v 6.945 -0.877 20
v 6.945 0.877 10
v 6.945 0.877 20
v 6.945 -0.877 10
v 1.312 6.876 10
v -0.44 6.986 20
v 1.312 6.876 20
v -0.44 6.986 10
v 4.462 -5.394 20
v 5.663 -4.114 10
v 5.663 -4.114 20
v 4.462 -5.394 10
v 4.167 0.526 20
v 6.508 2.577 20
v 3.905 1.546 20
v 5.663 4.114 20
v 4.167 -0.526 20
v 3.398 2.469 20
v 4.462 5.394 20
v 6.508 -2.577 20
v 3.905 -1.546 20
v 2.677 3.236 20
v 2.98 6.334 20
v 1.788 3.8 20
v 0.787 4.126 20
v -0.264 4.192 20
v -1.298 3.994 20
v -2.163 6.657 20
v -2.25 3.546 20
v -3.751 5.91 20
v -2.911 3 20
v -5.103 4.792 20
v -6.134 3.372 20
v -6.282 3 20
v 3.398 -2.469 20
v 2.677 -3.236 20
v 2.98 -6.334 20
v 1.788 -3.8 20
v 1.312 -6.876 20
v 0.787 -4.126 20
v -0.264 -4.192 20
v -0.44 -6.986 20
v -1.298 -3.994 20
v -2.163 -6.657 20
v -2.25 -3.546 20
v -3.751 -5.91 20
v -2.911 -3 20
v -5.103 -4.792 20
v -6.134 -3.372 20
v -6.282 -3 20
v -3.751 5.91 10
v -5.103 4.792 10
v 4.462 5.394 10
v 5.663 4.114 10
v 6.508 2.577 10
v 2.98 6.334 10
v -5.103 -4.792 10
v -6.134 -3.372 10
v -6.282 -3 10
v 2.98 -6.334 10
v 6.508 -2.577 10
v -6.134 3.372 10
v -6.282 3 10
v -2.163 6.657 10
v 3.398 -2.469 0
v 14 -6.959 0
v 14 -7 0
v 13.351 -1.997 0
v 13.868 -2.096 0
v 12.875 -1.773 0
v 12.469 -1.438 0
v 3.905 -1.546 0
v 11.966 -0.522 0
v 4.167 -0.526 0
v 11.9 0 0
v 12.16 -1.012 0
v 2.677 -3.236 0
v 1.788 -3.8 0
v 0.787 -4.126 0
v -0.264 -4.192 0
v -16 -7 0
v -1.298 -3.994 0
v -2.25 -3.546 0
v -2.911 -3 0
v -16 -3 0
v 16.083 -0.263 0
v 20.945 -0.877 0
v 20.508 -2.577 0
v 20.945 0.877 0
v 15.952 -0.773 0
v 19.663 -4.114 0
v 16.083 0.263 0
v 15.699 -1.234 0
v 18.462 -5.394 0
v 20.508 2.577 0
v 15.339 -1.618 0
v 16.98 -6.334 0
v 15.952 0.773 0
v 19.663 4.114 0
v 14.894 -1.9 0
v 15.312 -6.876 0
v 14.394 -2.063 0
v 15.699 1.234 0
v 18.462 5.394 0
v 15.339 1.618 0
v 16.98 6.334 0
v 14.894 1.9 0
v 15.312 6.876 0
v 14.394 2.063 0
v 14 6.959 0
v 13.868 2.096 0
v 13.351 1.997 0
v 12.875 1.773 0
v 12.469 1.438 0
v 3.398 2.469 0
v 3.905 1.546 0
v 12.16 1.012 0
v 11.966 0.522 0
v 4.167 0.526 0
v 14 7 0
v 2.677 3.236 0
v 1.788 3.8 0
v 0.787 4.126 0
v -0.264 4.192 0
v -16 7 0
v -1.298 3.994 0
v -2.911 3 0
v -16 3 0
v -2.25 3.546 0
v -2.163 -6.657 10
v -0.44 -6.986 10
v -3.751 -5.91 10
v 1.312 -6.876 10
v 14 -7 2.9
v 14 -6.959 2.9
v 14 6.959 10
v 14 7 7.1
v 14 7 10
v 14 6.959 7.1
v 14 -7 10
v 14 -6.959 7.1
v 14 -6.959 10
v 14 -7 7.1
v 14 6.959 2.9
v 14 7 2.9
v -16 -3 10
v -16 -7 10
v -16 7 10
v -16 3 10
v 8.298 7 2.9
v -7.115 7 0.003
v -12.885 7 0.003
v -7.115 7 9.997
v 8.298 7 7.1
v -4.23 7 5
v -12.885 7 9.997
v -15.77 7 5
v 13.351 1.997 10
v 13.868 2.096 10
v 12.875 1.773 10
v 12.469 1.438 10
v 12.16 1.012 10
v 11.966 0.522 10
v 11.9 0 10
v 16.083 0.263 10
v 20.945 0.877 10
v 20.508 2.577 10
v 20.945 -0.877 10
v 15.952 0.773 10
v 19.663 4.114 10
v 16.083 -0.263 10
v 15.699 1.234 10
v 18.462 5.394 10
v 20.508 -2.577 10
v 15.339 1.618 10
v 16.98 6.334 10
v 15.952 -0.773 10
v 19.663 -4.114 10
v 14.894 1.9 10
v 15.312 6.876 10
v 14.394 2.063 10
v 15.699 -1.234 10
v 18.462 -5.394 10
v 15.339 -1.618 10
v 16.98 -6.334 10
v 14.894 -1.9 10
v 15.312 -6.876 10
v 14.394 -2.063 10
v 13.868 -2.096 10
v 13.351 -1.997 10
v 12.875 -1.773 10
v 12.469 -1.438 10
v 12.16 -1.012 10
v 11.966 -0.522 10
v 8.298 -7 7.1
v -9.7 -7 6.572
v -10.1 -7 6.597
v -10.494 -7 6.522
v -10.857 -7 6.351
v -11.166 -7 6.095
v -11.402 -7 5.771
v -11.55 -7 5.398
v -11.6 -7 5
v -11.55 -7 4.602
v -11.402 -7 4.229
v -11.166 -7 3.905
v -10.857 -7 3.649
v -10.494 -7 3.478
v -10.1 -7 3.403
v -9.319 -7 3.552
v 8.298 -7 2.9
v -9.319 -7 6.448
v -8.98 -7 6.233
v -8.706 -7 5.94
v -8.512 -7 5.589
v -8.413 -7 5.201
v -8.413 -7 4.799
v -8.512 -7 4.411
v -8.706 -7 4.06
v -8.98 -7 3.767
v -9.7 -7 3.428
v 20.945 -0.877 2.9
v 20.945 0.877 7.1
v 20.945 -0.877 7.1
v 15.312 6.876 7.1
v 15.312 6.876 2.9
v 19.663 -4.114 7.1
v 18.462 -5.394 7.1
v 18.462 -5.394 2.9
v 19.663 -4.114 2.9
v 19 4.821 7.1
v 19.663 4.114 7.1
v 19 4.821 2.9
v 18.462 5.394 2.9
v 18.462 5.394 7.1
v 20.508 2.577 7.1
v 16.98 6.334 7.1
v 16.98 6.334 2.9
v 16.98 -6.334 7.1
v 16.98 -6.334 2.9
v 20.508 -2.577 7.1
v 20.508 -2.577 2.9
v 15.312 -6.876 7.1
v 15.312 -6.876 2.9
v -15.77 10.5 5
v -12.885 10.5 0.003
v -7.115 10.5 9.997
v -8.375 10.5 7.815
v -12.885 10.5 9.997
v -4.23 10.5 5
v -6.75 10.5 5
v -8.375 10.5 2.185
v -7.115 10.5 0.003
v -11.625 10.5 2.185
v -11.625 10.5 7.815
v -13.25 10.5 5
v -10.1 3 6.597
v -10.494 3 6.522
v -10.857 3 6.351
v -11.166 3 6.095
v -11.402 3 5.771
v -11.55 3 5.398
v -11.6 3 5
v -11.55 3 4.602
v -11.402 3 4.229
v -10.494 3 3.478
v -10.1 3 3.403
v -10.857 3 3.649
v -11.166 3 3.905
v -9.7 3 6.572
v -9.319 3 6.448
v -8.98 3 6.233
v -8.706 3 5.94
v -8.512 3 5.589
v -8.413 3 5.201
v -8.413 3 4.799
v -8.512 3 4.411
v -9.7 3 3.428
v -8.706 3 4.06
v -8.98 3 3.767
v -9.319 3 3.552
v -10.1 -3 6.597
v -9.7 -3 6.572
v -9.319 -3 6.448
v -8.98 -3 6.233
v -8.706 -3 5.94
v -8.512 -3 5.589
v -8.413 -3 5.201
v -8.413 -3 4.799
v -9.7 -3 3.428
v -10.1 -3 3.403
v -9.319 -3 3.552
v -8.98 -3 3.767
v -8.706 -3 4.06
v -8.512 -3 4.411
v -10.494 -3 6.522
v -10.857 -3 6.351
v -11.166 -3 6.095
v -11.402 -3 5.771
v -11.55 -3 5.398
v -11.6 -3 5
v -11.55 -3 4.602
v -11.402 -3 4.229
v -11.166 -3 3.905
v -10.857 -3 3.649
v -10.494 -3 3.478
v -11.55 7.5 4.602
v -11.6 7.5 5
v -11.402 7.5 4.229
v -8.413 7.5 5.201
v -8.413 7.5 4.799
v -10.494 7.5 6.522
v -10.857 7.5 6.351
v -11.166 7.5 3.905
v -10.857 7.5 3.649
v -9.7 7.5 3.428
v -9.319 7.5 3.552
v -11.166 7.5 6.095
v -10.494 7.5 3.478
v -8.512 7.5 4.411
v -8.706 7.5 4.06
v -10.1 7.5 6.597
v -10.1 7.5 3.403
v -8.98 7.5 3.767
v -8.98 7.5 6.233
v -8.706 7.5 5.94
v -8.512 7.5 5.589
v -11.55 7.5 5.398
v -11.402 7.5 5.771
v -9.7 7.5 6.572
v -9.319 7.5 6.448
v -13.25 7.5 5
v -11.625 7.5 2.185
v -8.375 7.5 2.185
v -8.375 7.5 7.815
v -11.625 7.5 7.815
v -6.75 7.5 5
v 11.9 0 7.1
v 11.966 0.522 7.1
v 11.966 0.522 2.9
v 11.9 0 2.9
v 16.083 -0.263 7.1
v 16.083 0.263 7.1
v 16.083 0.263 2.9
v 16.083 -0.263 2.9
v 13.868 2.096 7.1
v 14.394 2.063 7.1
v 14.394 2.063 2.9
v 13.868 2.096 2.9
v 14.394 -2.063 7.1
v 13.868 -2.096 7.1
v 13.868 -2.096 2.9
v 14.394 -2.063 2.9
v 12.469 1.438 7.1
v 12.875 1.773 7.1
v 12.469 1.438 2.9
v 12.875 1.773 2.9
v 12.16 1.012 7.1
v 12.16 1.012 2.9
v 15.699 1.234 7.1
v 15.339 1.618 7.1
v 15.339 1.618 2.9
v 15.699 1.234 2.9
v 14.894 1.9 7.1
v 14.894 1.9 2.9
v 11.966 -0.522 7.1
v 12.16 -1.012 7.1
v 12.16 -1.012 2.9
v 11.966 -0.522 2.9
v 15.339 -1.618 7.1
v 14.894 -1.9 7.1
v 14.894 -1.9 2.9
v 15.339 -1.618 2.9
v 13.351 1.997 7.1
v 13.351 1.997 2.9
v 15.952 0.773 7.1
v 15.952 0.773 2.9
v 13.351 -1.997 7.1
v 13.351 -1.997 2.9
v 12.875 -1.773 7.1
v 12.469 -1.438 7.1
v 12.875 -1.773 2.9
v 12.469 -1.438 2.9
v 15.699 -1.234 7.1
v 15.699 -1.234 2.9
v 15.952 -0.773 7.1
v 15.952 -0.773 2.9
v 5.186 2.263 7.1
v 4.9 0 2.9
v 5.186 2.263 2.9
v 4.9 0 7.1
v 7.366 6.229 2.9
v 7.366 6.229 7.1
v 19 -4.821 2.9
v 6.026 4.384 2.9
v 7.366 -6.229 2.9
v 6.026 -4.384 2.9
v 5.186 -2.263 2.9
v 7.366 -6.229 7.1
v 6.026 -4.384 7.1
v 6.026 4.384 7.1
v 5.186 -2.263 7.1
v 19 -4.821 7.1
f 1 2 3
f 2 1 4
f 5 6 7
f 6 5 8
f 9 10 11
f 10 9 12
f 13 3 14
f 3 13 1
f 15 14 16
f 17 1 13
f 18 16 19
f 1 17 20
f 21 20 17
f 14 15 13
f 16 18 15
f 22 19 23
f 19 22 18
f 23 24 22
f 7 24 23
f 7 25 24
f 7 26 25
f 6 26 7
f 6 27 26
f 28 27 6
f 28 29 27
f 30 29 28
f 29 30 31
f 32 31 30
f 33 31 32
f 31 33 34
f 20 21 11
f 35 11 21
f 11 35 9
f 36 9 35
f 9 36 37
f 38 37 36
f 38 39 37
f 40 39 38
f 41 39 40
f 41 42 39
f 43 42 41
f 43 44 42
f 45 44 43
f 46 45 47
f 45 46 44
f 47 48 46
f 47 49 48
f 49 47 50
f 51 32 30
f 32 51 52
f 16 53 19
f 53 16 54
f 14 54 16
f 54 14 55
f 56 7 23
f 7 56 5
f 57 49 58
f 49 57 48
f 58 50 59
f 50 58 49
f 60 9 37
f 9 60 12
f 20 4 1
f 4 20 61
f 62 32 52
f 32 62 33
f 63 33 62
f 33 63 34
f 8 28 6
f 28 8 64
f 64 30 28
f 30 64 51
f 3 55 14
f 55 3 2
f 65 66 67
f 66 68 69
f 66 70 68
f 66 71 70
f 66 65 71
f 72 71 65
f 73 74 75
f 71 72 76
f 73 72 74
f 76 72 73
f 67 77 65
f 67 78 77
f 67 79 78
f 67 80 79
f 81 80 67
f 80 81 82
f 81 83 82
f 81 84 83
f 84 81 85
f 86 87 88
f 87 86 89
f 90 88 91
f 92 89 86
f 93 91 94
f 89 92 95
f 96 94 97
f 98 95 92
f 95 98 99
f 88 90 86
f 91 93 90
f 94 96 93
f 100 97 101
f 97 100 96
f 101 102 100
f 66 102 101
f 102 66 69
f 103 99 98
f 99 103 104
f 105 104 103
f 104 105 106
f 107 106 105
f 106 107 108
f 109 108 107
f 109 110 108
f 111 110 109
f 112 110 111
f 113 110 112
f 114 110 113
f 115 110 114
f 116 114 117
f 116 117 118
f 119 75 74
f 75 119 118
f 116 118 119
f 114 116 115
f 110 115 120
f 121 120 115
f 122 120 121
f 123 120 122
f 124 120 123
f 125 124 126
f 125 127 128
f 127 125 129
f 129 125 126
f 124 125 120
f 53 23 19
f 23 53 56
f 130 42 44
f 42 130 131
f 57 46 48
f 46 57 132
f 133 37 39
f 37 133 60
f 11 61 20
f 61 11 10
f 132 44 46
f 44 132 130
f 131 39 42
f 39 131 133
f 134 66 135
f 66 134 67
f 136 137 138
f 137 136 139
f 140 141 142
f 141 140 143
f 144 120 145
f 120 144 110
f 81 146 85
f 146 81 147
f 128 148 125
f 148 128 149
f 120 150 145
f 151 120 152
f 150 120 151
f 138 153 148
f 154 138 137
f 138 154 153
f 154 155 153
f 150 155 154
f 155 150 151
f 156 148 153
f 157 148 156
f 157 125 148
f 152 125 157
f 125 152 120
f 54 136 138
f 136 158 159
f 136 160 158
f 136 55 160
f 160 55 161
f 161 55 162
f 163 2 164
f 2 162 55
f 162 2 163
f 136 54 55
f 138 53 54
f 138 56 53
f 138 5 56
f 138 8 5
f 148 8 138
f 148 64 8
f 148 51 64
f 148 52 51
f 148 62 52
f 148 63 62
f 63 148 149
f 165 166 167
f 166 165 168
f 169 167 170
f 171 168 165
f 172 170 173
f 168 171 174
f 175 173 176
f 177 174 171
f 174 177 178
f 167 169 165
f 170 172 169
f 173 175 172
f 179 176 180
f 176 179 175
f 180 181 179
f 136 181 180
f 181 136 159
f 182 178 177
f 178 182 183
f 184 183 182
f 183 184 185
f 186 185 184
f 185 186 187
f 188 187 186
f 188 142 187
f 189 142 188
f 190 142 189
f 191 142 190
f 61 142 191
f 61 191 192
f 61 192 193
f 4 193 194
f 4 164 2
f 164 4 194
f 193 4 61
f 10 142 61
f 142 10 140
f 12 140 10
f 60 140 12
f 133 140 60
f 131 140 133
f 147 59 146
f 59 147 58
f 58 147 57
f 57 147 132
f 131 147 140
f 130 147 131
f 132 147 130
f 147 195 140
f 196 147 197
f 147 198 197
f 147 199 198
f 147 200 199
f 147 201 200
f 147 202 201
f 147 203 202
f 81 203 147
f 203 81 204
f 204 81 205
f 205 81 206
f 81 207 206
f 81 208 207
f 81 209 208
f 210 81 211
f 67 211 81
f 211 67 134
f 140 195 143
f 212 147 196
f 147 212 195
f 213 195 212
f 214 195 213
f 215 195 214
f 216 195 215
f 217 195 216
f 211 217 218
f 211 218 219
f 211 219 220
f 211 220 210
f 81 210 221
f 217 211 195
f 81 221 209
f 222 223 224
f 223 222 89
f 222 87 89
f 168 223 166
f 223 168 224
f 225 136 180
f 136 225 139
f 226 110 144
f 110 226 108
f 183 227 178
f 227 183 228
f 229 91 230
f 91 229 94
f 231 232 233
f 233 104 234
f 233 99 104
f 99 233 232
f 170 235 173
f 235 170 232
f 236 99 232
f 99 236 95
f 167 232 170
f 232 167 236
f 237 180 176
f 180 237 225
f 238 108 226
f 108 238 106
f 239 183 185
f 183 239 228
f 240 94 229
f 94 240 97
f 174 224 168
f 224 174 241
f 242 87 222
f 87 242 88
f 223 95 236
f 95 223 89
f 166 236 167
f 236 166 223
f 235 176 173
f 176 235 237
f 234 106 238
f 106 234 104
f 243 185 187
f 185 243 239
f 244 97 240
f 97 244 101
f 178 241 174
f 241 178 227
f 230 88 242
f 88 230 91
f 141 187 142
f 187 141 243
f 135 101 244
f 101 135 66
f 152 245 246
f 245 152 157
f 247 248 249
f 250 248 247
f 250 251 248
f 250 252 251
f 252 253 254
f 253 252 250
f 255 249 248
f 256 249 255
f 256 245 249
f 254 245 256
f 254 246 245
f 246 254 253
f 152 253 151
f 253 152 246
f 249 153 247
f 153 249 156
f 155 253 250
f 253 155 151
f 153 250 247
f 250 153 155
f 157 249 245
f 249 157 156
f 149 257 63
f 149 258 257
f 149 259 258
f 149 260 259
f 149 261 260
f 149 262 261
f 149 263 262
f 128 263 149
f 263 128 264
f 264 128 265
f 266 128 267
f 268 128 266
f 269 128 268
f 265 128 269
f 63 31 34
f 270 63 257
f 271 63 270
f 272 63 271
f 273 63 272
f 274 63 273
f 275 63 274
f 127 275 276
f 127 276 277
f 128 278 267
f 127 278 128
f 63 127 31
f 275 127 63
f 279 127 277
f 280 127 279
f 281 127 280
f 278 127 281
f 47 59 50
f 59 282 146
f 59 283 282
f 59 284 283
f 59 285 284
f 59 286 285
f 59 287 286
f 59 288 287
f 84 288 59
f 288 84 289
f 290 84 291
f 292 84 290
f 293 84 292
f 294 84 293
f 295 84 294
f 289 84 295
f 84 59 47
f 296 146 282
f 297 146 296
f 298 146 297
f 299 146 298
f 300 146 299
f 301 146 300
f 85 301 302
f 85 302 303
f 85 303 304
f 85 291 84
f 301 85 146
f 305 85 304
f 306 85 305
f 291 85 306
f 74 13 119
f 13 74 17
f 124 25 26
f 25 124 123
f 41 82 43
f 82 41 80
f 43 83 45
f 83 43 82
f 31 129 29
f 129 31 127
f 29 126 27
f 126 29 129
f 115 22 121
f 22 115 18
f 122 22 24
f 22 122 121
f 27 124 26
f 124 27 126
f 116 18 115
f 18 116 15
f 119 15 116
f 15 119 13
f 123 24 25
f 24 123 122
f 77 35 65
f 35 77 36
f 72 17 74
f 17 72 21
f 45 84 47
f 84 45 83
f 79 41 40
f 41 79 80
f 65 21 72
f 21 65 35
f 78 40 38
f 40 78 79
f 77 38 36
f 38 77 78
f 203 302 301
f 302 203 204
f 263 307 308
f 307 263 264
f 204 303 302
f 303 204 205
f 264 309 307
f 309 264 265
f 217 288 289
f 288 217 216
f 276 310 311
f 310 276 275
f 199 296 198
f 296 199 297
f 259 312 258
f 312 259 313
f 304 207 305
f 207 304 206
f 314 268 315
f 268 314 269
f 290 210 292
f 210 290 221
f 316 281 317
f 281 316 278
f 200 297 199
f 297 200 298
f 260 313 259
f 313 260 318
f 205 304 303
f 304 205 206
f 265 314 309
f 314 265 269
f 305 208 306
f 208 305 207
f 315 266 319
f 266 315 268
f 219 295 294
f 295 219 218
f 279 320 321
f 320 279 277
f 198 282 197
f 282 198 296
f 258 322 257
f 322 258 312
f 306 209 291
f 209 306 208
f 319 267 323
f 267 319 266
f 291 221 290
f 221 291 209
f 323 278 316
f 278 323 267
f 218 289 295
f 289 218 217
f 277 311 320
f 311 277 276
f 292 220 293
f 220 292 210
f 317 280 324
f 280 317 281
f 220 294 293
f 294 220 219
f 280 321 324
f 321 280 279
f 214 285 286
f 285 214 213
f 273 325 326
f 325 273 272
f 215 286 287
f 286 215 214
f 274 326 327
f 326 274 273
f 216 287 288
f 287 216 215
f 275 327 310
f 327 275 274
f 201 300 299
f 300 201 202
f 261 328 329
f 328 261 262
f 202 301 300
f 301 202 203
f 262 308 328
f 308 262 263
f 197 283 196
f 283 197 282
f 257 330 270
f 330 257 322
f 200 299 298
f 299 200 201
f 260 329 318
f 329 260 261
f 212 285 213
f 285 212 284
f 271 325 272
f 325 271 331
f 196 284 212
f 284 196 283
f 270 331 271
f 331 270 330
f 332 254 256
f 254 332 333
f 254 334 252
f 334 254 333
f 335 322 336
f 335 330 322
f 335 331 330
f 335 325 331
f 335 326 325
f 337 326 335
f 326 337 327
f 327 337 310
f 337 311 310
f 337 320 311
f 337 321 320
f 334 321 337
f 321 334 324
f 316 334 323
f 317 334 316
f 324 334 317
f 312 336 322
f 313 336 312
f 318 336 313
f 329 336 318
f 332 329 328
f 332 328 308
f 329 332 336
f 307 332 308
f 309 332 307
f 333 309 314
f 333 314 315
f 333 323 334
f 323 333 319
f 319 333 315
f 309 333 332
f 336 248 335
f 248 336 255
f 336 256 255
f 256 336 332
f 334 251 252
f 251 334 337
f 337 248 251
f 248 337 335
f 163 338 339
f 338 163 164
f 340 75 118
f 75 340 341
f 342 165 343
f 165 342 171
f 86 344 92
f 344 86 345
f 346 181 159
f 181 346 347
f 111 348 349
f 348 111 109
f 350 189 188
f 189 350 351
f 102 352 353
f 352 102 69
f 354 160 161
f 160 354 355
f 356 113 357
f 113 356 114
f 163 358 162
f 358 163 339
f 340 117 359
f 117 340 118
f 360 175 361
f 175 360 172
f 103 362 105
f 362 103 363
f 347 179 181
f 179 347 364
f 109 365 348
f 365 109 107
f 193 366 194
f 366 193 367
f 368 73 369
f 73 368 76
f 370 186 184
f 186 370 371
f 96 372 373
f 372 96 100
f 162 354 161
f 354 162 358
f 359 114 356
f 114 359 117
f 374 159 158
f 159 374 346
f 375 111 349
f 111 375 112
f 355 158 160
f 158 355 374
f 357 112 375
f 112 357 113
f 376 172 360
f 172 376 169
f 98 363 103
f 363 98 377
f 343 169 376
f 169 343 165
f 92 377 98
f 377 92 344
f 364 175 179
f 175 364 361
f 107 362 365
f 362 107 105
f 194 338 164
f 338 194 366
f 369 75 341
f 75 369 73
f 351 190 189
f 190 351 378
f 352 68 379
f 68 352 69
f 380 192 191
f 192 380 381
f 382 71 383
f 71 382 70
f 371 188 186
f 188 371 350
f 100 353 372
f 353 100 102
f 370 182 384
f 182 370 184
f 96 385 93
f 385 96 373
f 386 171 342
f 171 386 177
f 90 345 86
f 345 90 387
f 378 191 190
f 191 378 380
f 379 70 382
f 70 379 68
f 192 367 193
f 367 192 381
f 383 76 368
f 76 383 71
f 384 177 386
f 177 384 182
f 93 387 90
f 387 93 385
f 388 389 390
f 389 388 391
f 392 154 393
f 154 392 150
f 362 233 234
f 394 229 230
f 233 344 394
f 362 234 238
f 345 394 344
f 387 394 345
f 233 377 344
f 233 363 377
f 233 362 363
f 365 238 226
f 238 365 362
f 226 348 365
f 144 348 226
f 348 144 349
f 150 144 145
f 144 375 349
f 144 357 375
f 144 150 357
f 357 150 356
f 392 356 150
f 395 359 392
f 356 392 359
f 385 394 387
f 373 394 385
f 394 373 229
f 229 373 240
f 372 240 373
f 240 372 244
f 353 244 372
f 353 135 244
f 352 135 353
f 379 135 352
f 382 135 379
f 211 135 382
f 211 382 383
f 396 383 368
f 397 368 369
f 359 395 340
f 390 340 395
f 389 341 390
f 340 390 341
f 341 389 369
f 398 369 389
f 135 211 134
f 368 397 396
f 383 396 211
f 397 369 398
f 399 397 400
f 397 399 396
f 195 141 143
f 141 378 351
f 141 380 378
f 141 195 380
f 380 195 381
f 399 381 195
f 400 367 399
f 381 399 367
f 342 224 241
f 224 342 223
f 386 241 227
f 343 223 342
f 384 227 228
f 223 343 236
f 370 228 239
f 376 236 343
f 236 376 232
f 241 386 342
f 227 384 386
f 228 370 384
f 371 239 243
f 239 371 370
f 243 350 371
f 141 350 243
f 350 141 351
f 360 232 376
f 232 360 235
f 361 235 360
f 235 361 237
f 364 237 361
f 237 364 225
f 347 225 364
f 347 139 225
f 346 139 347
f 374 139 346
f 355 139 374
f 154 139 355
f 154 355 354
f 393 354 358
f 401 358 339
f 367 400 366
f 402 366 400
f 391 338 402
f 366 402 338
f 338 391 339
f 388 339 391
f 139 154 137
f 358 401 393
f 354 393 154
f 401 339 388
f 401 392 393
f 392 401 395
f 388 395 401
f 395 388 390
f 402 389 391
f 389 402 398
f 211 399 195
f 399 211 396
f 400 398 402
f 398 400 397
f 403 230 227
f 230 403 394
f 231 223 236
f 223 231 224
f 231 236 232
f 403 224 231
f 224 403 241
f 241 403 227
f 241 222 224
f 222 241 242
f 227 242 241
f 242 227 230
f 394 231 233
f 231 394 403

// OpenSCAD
// file: halfcube.scad
module halfcube(a,orient,center) {
	translate(center==true?-a/2:0) {
		if (orient=="x")
			polyhedron (points = [[a[0],0,a[2]], [0,0,a[2]], [0,a[1],0], [0,0,0], [a[0],0,0], [a[0],a[1],0]], triangles = [[1,3,2], [4,0,5], [3,1,4], [1,2,5], [1,0,4], [0,1,5],  [5,2,4], [4,2,3]]);
		if (orient=="y")
			polyhedron (points = [[0,a[1],a[2]], [0,0,a[2]], [0,a[1],0], [0,0,0], [a[0],0,0], [a[0],a[1],0]], triangles = [[1,3,2], [1,2,0], [3,1,4], [0,2,5], [1,5,4], [1,0,5],  [5,2,4], [4,2,3]]);
		if (orient=="z")
			polyhedron (points = [[0,a[1],a[2]], [0,0,a[2]], [0,a[1],0], [0,0,0], [a[0],0,0], [a[0],0,a[2]]], triangles = [[1,3,2], [1,2,0], [3,1,4], [0,2,5], [1,5,4], [1,0,5],  [5,2,4], [4,2,3]]);
	}
}

//halfcube([10,20,30],"x",true);
//halfcube([10,20,30],"y",true);
//halfcube([10,20,30],"z",true);
// main file
include <halfcube.scad>

// качество цилиндров
$fn=25;
// наружный диаметр направляющей
d1=8;
// допуск на радиус направляющей
// (расстояние между стенками направляющей и детали)
delta1=0.2;
// диаметр М3
d2=3.2;
// диаметр гайки М3
d3=6.1;
// внешний диаметр концевика
d4=d1/2+3;
// вырез концевика
h1=d1-2;

// диаметр гайки М4
d5=8;
// ширина гайки М4
d6=d5*cos(30);
// высота гайки М4
h2=3.1+delta1;
// высота колеса регулировки
h2=4+delta1;
// диаметр колеса регулировки
d7=16.2;

module main(){
difference(){
	union(){
		translate([d4,d4,-10]) cylinder(20,r=d4);
		//translate([d4,0,0]) cube([16,d4*2,10]);
		translate([-14+7,0,0]) cube([30,d4*2,10]);
		translate([-14+7,d4,0]) cylinder(10,r=d4);
		translate([17,17.5,5]) rotate([90,0,0]) cylinder(5,r=5.77,$fn=6);
	}
	translate([9,d4-h1/2,-10.1]) cube([18,h1,21]);
	#translate([d4, d4,-10.1]) cylinder(21, r=d1/2+delta1);

	//Securing hole
	translate([17,17,5]) rotate([90,0,0]) cylinder(20,r=d2/2);
	translate([17,19.5,5]) rotate([90,0,0]) cylinder(5,r=d3/2+0.2,$fn=6);

	translate([-7,d4,-1]) cylinder(20,r=4.2/2);
	translate([-7,d4,5]) cylinder([16,16,h2],true);
	//translate([-7,d4,5]) cube([16,16,h2],true);
	translate([-7,d4,5-h2/2]) cylinder(r=d7/2+1,h=h2);
    //translate([-4.8,17,5]) rotate([90,0,0]) cylinder(20,r=2.5/2);
	//translate([-11,17,5]) rotate([90,0,0]) cylinder(20,r=2.5/2);
}

/*rotate([0,0,-90])
translate([d4,d4,0]){
    translate([-9.8,0,5]) {
        halfcube([8+5.8,5,5],"x");
        rotate([90,0,0]) halfcube([8+5.8,5,5],"x");
    }
    difference() {
        translate([-2.9,0,0])cube([8+5.8,10,10],true);
        cylinder(r=d5/2+delta1,h=h2,$fn=6);
        translate([d4,0,h2/2])
            cube([d4*2,d6,h2],true);
        translate([d4,0,-10+delta1])
            cube([d4*2,4,20],true);
        translate([0,0,-20+delta1])cylinder(r=4/2+delta1,h=20);
    }
}*/

}
/* ДЕТАЛЬ */
//main();
/* ПЕЧАТЬ */
rotate([180,0,180]) translate([-d4,-d4,-10]) {
    main();
    translate([-7,d4,5-h2/2])
    intersection() {
        cylinder(r=d4, h=h2);
        translate([-d4-5,0,h2/2])cube([d4*2,d4*2,h2],true);
    }
}
